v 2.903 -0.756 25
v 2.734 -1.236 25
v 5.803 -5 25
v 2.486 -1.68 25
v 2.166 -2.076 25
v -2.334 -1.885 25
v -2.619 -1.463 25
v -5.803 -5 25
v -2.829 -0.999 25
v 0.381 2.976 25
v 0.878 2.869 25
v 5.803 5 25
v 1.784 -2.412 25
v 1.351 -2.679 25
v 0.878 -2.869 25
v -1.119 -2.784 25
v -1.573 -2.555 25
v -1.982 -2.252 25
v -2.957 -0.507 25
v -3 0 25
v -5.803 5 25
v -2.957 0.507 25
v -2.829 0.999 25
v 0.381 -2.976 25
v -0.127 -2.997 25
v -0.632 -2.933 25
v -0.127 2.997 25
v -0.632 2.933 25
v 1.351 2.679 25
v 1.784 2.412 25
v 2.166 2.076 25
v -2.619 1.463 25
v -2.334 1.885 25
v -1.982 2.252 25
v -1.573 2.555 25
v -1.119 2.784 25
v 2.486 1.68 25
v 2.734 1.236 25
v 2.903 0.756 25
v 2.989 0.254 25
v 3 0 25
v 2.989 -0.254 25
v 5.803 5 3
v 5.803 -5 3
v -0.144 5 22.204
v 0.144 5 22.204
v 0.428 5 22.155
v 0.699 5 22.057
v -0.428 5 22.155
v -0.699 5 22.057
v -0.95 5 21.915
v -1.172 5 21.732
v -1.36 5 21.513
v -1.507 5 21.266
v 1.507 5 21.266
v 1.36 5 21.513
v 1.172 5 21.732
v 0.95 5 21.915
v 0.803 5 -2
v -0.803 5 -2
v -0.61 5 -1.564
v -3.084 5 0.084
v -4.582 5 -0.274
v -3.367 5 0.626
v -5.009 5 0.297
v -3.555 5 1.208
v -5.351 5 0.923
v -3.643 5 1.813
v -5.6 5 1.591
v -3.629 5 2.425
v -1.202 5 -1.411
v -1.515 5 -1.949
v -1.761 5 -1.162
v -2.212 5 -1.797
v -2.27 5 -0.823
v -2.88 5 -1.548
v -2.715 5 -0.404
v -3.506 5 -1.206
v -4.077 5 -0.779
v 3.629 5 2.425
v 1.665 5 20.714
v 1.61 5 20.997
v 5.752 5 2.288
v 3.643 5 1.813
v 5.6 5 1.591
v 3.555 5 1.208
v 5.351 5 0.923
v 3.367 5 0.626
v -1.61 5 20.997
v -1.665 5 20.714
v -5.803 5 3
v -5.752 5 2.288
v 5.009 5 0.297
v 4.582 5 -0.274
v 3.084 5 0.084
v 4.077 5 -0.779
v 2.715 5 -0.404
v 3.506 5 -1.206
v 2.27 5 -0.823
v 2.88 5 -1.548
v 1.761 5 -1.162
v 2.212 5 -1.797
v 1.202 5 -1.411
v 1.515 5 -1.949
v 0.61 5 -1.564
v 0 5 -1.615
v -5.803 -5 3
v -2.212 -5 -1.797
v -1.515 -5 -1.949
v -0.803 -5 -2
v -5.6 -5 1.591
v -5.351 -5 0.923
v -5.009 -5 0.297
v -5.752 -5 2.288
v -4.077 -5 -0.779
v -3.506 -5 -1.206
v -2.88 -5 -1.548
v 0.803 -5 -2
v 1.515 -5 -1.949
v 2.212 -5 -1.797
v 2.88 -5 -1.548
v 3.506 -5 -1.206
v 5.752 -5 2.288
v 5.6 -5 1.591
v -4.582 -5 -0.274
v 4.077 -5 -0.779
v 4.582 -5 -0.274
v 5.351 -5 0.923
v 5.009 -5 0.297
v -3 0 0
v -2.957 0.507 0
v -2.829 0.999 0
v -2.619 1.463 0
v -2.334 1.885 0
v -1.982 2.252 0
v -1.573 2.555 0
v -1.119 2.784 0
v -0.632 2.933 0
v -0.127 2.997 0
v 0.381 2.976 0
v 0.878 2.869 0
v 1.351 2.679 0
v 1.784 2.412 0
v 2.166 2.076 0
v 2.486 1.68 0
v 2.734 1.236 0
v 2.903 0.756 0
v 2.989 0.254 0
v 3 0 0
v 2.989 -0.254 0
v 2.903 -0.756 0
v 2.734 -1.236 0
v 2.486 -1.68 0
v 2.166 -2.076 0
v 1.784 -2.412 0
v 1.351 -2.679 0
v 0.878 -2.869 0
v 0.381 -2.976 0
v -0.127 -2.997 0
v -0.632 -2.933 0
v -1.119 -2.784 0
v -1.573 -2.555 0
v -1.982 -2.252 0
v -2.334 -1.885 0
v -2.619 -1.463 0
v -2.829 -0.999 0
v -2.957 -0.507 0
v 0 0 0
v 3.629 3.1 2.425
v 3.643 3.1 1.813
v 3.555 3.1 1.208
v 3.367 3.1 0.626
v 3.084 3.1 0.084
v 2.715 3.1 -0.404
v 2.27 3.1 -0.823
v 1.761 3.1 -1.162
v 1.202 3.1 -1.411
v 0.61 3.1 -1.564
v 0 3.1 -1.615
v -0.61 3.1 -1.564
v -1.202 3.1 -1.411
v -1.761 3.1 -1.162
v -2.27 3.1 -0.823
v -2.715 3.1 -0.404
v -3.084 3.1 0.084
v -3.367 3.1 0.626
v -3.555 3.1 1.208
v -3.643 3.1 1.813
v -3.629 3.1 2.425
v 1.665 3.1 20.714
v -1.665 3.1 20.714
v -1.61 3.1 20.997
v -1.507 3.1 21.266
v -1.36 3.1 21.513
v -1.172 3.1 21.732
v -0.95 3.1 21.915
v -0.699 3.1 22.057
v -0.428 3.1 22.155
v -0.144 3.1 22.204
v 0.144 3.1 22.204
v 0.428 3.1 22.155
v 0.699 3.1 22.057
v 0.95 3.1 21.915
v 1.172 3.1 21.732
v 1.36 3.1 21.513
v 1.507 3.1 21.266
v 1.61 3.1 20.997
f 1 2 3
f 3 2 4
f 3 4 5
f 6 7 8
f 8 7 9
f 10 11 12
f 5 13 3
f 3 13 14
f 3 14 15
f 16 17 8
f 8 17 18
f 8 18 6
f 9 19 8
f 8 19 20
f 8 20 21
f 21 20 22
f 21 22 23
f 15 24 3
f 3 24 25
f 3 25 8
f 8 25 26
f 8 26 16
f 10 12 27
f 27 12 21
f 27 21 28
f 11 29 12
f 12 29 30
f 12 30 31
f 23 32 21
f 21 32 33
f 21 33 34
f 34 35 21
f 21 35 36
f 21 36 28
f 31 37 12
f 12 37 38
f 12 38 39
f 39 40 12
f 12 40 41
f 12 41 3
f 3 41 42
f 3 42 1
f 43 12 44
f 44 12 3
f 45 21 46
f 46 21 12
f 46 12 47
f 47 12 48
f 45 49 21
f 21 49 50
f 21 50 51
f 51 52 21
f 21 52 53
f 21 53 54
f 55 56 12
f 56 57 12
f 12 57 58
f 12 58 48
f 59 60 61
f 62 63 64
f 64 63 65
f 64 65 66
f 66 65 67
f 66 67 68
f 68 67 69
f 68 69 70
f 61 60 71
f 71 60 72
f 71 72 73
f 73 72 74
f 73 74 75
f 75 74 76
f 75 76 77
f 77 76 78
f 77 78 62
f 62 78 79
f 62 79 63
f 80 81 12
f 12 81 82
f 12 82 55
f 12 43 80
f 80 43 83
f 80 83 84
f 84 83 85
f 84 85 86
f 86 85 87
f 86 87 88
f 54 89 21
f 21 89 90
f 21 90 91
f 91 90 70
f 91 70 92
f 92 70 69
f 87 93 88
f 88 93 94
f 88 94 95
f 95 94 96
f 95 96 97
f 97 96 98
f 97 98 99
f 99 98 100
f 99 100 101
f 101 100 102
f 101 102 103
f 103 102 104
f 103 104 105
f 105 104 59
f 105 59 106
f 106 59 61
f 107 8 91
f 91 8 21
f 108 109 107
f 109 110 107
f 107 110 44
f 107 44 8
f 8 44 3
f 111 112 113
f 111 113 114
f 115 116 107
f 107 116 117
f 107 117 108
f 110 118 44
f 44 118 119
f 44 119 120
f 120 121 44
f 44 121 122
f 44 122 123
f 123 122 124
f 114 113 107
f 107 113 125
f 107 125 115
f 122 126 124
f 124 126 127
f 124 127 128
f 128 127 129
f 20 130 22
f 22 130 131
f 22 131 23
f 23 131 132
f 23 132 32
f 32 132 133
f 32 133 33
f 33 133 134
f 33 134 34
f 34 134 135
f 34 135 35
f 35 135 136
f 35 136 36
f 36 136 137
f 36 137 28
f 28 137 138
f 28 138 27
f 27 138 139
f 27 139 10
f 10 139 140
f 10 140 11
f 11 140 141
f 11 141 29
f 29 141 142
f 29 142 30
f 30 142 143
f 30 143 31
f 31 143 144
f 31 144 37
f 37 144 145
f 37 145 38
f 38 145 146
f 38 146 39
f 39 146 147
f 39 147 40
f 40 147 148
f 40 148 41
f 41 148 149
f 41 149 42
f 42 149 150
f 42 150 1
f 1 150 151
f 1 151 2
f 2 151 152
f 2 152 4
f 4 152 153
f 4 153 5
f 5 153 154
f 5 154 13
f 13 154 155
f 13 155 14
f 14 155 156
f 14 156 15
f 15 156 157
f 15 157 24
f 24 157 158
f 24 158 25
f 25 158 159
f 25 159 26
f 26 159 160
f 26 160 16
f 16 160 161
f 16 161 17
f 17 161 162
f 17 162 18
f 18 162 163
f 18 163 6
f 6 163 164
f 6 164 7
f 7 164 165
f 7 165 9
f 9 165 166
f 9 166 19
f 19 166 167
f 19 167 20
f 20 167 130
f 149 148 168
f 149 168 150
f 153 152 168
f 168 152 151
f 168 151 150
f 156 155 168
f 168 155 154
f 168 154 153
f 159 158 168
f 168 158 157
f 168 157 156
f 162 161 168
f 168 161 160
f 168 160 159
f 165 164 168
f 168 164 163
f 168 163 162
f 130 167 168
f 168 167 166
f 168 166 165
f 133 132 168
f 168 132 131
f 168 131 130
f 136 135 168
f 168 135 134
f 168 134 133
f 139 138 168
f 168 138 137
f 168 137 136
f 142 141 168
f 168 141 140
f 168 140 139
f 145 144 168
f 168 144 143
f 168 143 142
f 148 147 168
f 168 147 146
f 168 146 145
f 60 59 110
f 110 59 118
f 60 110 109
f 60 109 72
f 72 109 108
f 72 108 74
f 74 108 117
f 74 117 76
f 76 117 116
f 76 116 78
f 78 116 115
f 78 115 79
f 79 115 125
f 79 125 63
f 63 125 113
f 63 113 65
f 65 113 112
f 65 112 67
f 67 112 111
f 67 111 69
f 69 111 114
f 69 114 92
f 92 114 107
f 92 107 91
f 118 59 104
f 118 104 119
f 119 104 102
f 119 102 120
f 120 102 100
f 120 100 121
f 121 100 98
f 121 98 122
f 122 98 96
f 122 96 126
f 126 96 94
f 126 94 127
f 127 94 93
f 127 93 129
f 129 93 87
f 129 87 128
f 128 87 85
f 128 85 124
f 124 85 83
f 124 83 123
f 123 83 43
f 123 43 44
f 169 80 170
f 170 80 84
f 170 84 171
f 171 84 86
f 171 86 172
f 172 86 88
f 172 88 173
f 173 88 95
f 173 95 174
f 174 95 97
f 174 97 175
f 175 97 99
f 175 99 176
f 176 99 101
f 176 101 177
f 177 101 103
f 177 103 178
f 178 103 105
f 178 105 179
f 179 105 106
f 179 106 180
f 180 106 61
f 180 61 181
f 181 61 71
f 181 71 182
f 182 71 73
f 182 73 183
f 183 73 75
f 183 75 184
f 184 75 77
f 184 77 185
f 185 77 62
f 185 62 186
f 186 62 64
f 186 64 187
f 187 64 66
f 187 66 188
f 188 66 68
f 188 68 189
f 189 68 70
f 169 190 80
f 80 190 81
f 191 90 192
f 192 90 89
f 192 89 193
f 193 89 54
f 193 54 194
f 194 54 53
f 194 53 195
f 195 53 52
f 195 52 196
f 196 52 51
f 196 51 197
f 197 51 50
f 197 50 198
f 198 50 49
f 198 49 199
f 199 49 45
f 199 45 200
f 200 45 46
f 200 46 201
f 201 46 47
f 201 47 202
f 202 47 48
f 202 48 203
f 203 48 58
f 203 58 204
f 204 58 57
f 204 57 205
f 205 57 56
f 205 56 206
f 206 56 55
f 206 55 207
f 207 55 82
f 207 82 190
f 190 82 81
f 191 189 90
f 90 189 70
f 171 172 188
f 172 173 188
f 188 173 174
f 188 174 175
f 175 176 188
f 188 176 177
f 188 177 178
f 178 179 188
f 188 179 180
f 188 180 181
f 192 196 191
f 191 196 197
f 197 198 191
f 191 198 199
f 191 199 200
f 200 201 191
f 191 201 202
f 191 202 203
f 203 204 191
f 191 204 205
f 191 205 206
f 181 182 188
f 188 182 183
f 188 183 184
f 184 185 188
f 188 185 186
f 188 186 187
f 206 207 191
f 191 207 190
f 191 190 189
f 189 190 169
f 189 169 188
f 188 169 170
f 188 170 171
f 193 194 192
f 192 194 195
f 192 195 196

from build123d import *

# Parameters (mm, degrees)
SKETCH1_W           = 11.605976064
SKETCH1_H           = 10
SKETCH1_R           = 3
BOSS_EXTRUDE1_DEPTH = 25
SKETCH2_W           = 11.605976064
SKETCH2_H           = 10
BOSS_EXTRUDE2_DEPTH = 2
FILLET1_R           = 5
CUT_EXTRUDE1_DEPTH  = 1.9


with BuildPart() as part:
    # Sketch1 → Boss-Extrude1 (new body)
    with BuildSketch(Plane.XY):
        Rectangle(SKETCH1_W, SKETCH1_H)
        Circle(SKETCH1_R, mode=Mode.SUBTRACT)
    extrude(amount=BOSS_EXTRUDE1_DEPTH)

    # Sketch2 → Boss-Extrude2 (add)
    with BuildSketch(Plane(origin=(0, 0, 0), x_dir=(-1, 0, 0), z_dir=(0, 0, -1))):
        Rectangle(SKETCH2_W, SKETCH2_H)
    extrude(amount=BOSS_EXTRUDE2_DEPTH)

    # Fillet1
    fillet1_edges = [part.edges().sort_by_distance(p)[0] for p in [
        (5.802988032, 0, -2),
        (-5.802988032, 0, -2),
    ]]
    fillet(fillet1_edges, radius=FILLET1_R)

    # Sketch3 → Cut-Extrude1 (cut)
    with BuildSketch(Plane(origin=(0, 5, 0), x_dir=(1, 0, 0), z_dir=(0, 1, 0))):
        with BuildLine():
            Line((3.629140862, -2.424827665), (1.665427656, -20.71398307))
            ThreePointArc((1.665427656, -20.71398307), (0, -22.210165502), (-1.665427656, -20.71398307))
            Line((-1.665427656, -20.71398307), (-3.629140862, -2.424827665))
            ThreePointArc((-3.629140862, -2.424827665), (0, 1.614834498), (3.629140862, -2.424827665))
        make_face()
    extrude(amount=-CUT_EXTRUDE1_DEPTH, mode=Mode.SUBTRACT)


solid = part.part
